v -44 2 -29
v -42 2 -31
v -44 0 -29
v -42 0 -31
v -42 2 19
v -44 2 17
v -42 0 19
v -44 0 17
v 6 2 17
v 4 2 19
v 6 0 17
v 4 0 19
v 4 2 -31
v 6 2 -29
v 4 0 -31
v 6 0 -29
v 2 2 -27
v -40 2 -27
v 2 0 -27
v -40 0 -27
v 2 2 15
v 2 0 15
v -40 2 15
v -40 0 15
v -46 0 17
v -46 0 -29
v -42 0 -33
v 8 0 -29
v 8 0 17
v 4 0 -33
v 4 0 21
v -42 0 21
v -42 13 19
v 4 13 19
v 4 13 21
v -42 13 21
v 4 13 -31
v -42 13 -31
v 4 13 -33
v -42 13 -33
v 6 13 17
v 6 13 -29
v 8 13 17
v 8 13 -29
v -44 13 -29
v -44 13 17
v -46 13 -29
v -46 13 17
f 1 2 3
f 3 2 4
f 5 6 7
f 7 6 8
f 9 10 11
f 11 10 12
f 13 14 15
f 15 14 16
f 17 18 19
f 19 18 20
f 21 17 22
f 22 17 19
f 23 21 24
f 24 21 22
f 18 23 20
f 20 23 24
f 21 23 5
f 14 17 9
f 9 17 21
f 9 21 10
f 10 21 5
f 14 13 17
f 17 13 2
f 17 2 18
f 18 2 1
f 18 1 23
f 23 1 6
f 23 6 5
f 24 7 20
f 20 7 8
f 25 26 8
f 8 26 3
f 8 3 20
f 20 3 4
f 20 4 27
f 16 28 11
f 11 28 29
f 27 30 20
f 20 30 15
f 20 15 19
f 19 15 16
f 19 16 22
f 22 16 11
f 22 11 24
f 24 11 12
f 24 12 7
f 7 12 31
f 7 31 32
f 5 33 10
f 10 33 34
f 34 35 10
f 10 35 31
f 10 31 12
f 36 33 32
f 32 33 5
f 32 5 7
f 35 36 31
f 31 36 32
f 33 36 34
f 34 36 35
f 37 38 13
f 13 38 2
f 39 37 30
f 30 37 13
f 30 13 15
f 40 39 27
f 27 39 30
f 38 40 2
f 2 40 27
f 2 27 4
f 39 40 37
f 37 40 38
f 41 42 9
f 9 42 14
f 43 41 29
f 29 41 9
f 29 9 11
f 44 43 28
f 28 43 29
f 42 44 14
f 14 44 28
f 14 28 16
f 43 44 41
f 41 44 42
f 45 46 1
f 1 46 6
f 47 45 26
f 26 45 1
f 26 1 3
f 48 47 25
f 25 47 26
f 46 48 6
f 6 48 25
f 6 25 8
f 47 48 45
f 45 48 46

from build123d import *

# Parameters (mm, degrees)
SKETCH1_W           = 42
SKETCH1_H           = 42
BOSS_EXTRUDE3_DEPTH = 2
SKETCH1_26_W        = 46
SKETCH1_26_H        = 2
SKETCH1_26_W_2      = 2
SKETCH1_26_H_2      = 46
BOSS_EXTRUDE6_DEPTH = 13


with BuildPart() as part:
    # Sketch1 → Boss-Extrude3 (new body)
    with BuildSketch(Plane(origin=(0, 0, 0), x_dir=(1, 0, 0), z_dir=(0, 1, 0))):
        Polygon((4, 31), (-42, 31), (-44, 29), (-44, -17), (-42, -19), (4, -19), (6, -17), (6, 29), align=None)
        with Locations((-19, 6)):
            Rectangle(SKETCH1_W, SKETCH1_H, mode=Mode.SUBTRACT)
    extrude(amount=BOSS_EXTRUDE3_DEPTH)

    # Sketch1<26> → Boss-Extrude6 (add)
    with BuildSketch(Plane(origin=(0, 0, 0), x_dir=(1, 0, 0), z_dir=(0, 1, 0))):
        with Locations((-19, 32)):
            Rectangle(SKETCH1_26_W, SKETCH1_26_H)
        with Locations((-45, 6)):
            Rectangle(SKETCH1_26_W_2, SKETCH1_26_H_2)
        with Locations((7, 6)):
            Rectangle(SKETCH1_26_W_2, SKETCH1_26_H_2)
        with Locations((-19, -20)):
            Rectangle(SKETCH1_26_W, SKETCH1_26_H)
    extrude(amount=BOSS_EXTRUDE6_DEPTH)


solid = part.part
